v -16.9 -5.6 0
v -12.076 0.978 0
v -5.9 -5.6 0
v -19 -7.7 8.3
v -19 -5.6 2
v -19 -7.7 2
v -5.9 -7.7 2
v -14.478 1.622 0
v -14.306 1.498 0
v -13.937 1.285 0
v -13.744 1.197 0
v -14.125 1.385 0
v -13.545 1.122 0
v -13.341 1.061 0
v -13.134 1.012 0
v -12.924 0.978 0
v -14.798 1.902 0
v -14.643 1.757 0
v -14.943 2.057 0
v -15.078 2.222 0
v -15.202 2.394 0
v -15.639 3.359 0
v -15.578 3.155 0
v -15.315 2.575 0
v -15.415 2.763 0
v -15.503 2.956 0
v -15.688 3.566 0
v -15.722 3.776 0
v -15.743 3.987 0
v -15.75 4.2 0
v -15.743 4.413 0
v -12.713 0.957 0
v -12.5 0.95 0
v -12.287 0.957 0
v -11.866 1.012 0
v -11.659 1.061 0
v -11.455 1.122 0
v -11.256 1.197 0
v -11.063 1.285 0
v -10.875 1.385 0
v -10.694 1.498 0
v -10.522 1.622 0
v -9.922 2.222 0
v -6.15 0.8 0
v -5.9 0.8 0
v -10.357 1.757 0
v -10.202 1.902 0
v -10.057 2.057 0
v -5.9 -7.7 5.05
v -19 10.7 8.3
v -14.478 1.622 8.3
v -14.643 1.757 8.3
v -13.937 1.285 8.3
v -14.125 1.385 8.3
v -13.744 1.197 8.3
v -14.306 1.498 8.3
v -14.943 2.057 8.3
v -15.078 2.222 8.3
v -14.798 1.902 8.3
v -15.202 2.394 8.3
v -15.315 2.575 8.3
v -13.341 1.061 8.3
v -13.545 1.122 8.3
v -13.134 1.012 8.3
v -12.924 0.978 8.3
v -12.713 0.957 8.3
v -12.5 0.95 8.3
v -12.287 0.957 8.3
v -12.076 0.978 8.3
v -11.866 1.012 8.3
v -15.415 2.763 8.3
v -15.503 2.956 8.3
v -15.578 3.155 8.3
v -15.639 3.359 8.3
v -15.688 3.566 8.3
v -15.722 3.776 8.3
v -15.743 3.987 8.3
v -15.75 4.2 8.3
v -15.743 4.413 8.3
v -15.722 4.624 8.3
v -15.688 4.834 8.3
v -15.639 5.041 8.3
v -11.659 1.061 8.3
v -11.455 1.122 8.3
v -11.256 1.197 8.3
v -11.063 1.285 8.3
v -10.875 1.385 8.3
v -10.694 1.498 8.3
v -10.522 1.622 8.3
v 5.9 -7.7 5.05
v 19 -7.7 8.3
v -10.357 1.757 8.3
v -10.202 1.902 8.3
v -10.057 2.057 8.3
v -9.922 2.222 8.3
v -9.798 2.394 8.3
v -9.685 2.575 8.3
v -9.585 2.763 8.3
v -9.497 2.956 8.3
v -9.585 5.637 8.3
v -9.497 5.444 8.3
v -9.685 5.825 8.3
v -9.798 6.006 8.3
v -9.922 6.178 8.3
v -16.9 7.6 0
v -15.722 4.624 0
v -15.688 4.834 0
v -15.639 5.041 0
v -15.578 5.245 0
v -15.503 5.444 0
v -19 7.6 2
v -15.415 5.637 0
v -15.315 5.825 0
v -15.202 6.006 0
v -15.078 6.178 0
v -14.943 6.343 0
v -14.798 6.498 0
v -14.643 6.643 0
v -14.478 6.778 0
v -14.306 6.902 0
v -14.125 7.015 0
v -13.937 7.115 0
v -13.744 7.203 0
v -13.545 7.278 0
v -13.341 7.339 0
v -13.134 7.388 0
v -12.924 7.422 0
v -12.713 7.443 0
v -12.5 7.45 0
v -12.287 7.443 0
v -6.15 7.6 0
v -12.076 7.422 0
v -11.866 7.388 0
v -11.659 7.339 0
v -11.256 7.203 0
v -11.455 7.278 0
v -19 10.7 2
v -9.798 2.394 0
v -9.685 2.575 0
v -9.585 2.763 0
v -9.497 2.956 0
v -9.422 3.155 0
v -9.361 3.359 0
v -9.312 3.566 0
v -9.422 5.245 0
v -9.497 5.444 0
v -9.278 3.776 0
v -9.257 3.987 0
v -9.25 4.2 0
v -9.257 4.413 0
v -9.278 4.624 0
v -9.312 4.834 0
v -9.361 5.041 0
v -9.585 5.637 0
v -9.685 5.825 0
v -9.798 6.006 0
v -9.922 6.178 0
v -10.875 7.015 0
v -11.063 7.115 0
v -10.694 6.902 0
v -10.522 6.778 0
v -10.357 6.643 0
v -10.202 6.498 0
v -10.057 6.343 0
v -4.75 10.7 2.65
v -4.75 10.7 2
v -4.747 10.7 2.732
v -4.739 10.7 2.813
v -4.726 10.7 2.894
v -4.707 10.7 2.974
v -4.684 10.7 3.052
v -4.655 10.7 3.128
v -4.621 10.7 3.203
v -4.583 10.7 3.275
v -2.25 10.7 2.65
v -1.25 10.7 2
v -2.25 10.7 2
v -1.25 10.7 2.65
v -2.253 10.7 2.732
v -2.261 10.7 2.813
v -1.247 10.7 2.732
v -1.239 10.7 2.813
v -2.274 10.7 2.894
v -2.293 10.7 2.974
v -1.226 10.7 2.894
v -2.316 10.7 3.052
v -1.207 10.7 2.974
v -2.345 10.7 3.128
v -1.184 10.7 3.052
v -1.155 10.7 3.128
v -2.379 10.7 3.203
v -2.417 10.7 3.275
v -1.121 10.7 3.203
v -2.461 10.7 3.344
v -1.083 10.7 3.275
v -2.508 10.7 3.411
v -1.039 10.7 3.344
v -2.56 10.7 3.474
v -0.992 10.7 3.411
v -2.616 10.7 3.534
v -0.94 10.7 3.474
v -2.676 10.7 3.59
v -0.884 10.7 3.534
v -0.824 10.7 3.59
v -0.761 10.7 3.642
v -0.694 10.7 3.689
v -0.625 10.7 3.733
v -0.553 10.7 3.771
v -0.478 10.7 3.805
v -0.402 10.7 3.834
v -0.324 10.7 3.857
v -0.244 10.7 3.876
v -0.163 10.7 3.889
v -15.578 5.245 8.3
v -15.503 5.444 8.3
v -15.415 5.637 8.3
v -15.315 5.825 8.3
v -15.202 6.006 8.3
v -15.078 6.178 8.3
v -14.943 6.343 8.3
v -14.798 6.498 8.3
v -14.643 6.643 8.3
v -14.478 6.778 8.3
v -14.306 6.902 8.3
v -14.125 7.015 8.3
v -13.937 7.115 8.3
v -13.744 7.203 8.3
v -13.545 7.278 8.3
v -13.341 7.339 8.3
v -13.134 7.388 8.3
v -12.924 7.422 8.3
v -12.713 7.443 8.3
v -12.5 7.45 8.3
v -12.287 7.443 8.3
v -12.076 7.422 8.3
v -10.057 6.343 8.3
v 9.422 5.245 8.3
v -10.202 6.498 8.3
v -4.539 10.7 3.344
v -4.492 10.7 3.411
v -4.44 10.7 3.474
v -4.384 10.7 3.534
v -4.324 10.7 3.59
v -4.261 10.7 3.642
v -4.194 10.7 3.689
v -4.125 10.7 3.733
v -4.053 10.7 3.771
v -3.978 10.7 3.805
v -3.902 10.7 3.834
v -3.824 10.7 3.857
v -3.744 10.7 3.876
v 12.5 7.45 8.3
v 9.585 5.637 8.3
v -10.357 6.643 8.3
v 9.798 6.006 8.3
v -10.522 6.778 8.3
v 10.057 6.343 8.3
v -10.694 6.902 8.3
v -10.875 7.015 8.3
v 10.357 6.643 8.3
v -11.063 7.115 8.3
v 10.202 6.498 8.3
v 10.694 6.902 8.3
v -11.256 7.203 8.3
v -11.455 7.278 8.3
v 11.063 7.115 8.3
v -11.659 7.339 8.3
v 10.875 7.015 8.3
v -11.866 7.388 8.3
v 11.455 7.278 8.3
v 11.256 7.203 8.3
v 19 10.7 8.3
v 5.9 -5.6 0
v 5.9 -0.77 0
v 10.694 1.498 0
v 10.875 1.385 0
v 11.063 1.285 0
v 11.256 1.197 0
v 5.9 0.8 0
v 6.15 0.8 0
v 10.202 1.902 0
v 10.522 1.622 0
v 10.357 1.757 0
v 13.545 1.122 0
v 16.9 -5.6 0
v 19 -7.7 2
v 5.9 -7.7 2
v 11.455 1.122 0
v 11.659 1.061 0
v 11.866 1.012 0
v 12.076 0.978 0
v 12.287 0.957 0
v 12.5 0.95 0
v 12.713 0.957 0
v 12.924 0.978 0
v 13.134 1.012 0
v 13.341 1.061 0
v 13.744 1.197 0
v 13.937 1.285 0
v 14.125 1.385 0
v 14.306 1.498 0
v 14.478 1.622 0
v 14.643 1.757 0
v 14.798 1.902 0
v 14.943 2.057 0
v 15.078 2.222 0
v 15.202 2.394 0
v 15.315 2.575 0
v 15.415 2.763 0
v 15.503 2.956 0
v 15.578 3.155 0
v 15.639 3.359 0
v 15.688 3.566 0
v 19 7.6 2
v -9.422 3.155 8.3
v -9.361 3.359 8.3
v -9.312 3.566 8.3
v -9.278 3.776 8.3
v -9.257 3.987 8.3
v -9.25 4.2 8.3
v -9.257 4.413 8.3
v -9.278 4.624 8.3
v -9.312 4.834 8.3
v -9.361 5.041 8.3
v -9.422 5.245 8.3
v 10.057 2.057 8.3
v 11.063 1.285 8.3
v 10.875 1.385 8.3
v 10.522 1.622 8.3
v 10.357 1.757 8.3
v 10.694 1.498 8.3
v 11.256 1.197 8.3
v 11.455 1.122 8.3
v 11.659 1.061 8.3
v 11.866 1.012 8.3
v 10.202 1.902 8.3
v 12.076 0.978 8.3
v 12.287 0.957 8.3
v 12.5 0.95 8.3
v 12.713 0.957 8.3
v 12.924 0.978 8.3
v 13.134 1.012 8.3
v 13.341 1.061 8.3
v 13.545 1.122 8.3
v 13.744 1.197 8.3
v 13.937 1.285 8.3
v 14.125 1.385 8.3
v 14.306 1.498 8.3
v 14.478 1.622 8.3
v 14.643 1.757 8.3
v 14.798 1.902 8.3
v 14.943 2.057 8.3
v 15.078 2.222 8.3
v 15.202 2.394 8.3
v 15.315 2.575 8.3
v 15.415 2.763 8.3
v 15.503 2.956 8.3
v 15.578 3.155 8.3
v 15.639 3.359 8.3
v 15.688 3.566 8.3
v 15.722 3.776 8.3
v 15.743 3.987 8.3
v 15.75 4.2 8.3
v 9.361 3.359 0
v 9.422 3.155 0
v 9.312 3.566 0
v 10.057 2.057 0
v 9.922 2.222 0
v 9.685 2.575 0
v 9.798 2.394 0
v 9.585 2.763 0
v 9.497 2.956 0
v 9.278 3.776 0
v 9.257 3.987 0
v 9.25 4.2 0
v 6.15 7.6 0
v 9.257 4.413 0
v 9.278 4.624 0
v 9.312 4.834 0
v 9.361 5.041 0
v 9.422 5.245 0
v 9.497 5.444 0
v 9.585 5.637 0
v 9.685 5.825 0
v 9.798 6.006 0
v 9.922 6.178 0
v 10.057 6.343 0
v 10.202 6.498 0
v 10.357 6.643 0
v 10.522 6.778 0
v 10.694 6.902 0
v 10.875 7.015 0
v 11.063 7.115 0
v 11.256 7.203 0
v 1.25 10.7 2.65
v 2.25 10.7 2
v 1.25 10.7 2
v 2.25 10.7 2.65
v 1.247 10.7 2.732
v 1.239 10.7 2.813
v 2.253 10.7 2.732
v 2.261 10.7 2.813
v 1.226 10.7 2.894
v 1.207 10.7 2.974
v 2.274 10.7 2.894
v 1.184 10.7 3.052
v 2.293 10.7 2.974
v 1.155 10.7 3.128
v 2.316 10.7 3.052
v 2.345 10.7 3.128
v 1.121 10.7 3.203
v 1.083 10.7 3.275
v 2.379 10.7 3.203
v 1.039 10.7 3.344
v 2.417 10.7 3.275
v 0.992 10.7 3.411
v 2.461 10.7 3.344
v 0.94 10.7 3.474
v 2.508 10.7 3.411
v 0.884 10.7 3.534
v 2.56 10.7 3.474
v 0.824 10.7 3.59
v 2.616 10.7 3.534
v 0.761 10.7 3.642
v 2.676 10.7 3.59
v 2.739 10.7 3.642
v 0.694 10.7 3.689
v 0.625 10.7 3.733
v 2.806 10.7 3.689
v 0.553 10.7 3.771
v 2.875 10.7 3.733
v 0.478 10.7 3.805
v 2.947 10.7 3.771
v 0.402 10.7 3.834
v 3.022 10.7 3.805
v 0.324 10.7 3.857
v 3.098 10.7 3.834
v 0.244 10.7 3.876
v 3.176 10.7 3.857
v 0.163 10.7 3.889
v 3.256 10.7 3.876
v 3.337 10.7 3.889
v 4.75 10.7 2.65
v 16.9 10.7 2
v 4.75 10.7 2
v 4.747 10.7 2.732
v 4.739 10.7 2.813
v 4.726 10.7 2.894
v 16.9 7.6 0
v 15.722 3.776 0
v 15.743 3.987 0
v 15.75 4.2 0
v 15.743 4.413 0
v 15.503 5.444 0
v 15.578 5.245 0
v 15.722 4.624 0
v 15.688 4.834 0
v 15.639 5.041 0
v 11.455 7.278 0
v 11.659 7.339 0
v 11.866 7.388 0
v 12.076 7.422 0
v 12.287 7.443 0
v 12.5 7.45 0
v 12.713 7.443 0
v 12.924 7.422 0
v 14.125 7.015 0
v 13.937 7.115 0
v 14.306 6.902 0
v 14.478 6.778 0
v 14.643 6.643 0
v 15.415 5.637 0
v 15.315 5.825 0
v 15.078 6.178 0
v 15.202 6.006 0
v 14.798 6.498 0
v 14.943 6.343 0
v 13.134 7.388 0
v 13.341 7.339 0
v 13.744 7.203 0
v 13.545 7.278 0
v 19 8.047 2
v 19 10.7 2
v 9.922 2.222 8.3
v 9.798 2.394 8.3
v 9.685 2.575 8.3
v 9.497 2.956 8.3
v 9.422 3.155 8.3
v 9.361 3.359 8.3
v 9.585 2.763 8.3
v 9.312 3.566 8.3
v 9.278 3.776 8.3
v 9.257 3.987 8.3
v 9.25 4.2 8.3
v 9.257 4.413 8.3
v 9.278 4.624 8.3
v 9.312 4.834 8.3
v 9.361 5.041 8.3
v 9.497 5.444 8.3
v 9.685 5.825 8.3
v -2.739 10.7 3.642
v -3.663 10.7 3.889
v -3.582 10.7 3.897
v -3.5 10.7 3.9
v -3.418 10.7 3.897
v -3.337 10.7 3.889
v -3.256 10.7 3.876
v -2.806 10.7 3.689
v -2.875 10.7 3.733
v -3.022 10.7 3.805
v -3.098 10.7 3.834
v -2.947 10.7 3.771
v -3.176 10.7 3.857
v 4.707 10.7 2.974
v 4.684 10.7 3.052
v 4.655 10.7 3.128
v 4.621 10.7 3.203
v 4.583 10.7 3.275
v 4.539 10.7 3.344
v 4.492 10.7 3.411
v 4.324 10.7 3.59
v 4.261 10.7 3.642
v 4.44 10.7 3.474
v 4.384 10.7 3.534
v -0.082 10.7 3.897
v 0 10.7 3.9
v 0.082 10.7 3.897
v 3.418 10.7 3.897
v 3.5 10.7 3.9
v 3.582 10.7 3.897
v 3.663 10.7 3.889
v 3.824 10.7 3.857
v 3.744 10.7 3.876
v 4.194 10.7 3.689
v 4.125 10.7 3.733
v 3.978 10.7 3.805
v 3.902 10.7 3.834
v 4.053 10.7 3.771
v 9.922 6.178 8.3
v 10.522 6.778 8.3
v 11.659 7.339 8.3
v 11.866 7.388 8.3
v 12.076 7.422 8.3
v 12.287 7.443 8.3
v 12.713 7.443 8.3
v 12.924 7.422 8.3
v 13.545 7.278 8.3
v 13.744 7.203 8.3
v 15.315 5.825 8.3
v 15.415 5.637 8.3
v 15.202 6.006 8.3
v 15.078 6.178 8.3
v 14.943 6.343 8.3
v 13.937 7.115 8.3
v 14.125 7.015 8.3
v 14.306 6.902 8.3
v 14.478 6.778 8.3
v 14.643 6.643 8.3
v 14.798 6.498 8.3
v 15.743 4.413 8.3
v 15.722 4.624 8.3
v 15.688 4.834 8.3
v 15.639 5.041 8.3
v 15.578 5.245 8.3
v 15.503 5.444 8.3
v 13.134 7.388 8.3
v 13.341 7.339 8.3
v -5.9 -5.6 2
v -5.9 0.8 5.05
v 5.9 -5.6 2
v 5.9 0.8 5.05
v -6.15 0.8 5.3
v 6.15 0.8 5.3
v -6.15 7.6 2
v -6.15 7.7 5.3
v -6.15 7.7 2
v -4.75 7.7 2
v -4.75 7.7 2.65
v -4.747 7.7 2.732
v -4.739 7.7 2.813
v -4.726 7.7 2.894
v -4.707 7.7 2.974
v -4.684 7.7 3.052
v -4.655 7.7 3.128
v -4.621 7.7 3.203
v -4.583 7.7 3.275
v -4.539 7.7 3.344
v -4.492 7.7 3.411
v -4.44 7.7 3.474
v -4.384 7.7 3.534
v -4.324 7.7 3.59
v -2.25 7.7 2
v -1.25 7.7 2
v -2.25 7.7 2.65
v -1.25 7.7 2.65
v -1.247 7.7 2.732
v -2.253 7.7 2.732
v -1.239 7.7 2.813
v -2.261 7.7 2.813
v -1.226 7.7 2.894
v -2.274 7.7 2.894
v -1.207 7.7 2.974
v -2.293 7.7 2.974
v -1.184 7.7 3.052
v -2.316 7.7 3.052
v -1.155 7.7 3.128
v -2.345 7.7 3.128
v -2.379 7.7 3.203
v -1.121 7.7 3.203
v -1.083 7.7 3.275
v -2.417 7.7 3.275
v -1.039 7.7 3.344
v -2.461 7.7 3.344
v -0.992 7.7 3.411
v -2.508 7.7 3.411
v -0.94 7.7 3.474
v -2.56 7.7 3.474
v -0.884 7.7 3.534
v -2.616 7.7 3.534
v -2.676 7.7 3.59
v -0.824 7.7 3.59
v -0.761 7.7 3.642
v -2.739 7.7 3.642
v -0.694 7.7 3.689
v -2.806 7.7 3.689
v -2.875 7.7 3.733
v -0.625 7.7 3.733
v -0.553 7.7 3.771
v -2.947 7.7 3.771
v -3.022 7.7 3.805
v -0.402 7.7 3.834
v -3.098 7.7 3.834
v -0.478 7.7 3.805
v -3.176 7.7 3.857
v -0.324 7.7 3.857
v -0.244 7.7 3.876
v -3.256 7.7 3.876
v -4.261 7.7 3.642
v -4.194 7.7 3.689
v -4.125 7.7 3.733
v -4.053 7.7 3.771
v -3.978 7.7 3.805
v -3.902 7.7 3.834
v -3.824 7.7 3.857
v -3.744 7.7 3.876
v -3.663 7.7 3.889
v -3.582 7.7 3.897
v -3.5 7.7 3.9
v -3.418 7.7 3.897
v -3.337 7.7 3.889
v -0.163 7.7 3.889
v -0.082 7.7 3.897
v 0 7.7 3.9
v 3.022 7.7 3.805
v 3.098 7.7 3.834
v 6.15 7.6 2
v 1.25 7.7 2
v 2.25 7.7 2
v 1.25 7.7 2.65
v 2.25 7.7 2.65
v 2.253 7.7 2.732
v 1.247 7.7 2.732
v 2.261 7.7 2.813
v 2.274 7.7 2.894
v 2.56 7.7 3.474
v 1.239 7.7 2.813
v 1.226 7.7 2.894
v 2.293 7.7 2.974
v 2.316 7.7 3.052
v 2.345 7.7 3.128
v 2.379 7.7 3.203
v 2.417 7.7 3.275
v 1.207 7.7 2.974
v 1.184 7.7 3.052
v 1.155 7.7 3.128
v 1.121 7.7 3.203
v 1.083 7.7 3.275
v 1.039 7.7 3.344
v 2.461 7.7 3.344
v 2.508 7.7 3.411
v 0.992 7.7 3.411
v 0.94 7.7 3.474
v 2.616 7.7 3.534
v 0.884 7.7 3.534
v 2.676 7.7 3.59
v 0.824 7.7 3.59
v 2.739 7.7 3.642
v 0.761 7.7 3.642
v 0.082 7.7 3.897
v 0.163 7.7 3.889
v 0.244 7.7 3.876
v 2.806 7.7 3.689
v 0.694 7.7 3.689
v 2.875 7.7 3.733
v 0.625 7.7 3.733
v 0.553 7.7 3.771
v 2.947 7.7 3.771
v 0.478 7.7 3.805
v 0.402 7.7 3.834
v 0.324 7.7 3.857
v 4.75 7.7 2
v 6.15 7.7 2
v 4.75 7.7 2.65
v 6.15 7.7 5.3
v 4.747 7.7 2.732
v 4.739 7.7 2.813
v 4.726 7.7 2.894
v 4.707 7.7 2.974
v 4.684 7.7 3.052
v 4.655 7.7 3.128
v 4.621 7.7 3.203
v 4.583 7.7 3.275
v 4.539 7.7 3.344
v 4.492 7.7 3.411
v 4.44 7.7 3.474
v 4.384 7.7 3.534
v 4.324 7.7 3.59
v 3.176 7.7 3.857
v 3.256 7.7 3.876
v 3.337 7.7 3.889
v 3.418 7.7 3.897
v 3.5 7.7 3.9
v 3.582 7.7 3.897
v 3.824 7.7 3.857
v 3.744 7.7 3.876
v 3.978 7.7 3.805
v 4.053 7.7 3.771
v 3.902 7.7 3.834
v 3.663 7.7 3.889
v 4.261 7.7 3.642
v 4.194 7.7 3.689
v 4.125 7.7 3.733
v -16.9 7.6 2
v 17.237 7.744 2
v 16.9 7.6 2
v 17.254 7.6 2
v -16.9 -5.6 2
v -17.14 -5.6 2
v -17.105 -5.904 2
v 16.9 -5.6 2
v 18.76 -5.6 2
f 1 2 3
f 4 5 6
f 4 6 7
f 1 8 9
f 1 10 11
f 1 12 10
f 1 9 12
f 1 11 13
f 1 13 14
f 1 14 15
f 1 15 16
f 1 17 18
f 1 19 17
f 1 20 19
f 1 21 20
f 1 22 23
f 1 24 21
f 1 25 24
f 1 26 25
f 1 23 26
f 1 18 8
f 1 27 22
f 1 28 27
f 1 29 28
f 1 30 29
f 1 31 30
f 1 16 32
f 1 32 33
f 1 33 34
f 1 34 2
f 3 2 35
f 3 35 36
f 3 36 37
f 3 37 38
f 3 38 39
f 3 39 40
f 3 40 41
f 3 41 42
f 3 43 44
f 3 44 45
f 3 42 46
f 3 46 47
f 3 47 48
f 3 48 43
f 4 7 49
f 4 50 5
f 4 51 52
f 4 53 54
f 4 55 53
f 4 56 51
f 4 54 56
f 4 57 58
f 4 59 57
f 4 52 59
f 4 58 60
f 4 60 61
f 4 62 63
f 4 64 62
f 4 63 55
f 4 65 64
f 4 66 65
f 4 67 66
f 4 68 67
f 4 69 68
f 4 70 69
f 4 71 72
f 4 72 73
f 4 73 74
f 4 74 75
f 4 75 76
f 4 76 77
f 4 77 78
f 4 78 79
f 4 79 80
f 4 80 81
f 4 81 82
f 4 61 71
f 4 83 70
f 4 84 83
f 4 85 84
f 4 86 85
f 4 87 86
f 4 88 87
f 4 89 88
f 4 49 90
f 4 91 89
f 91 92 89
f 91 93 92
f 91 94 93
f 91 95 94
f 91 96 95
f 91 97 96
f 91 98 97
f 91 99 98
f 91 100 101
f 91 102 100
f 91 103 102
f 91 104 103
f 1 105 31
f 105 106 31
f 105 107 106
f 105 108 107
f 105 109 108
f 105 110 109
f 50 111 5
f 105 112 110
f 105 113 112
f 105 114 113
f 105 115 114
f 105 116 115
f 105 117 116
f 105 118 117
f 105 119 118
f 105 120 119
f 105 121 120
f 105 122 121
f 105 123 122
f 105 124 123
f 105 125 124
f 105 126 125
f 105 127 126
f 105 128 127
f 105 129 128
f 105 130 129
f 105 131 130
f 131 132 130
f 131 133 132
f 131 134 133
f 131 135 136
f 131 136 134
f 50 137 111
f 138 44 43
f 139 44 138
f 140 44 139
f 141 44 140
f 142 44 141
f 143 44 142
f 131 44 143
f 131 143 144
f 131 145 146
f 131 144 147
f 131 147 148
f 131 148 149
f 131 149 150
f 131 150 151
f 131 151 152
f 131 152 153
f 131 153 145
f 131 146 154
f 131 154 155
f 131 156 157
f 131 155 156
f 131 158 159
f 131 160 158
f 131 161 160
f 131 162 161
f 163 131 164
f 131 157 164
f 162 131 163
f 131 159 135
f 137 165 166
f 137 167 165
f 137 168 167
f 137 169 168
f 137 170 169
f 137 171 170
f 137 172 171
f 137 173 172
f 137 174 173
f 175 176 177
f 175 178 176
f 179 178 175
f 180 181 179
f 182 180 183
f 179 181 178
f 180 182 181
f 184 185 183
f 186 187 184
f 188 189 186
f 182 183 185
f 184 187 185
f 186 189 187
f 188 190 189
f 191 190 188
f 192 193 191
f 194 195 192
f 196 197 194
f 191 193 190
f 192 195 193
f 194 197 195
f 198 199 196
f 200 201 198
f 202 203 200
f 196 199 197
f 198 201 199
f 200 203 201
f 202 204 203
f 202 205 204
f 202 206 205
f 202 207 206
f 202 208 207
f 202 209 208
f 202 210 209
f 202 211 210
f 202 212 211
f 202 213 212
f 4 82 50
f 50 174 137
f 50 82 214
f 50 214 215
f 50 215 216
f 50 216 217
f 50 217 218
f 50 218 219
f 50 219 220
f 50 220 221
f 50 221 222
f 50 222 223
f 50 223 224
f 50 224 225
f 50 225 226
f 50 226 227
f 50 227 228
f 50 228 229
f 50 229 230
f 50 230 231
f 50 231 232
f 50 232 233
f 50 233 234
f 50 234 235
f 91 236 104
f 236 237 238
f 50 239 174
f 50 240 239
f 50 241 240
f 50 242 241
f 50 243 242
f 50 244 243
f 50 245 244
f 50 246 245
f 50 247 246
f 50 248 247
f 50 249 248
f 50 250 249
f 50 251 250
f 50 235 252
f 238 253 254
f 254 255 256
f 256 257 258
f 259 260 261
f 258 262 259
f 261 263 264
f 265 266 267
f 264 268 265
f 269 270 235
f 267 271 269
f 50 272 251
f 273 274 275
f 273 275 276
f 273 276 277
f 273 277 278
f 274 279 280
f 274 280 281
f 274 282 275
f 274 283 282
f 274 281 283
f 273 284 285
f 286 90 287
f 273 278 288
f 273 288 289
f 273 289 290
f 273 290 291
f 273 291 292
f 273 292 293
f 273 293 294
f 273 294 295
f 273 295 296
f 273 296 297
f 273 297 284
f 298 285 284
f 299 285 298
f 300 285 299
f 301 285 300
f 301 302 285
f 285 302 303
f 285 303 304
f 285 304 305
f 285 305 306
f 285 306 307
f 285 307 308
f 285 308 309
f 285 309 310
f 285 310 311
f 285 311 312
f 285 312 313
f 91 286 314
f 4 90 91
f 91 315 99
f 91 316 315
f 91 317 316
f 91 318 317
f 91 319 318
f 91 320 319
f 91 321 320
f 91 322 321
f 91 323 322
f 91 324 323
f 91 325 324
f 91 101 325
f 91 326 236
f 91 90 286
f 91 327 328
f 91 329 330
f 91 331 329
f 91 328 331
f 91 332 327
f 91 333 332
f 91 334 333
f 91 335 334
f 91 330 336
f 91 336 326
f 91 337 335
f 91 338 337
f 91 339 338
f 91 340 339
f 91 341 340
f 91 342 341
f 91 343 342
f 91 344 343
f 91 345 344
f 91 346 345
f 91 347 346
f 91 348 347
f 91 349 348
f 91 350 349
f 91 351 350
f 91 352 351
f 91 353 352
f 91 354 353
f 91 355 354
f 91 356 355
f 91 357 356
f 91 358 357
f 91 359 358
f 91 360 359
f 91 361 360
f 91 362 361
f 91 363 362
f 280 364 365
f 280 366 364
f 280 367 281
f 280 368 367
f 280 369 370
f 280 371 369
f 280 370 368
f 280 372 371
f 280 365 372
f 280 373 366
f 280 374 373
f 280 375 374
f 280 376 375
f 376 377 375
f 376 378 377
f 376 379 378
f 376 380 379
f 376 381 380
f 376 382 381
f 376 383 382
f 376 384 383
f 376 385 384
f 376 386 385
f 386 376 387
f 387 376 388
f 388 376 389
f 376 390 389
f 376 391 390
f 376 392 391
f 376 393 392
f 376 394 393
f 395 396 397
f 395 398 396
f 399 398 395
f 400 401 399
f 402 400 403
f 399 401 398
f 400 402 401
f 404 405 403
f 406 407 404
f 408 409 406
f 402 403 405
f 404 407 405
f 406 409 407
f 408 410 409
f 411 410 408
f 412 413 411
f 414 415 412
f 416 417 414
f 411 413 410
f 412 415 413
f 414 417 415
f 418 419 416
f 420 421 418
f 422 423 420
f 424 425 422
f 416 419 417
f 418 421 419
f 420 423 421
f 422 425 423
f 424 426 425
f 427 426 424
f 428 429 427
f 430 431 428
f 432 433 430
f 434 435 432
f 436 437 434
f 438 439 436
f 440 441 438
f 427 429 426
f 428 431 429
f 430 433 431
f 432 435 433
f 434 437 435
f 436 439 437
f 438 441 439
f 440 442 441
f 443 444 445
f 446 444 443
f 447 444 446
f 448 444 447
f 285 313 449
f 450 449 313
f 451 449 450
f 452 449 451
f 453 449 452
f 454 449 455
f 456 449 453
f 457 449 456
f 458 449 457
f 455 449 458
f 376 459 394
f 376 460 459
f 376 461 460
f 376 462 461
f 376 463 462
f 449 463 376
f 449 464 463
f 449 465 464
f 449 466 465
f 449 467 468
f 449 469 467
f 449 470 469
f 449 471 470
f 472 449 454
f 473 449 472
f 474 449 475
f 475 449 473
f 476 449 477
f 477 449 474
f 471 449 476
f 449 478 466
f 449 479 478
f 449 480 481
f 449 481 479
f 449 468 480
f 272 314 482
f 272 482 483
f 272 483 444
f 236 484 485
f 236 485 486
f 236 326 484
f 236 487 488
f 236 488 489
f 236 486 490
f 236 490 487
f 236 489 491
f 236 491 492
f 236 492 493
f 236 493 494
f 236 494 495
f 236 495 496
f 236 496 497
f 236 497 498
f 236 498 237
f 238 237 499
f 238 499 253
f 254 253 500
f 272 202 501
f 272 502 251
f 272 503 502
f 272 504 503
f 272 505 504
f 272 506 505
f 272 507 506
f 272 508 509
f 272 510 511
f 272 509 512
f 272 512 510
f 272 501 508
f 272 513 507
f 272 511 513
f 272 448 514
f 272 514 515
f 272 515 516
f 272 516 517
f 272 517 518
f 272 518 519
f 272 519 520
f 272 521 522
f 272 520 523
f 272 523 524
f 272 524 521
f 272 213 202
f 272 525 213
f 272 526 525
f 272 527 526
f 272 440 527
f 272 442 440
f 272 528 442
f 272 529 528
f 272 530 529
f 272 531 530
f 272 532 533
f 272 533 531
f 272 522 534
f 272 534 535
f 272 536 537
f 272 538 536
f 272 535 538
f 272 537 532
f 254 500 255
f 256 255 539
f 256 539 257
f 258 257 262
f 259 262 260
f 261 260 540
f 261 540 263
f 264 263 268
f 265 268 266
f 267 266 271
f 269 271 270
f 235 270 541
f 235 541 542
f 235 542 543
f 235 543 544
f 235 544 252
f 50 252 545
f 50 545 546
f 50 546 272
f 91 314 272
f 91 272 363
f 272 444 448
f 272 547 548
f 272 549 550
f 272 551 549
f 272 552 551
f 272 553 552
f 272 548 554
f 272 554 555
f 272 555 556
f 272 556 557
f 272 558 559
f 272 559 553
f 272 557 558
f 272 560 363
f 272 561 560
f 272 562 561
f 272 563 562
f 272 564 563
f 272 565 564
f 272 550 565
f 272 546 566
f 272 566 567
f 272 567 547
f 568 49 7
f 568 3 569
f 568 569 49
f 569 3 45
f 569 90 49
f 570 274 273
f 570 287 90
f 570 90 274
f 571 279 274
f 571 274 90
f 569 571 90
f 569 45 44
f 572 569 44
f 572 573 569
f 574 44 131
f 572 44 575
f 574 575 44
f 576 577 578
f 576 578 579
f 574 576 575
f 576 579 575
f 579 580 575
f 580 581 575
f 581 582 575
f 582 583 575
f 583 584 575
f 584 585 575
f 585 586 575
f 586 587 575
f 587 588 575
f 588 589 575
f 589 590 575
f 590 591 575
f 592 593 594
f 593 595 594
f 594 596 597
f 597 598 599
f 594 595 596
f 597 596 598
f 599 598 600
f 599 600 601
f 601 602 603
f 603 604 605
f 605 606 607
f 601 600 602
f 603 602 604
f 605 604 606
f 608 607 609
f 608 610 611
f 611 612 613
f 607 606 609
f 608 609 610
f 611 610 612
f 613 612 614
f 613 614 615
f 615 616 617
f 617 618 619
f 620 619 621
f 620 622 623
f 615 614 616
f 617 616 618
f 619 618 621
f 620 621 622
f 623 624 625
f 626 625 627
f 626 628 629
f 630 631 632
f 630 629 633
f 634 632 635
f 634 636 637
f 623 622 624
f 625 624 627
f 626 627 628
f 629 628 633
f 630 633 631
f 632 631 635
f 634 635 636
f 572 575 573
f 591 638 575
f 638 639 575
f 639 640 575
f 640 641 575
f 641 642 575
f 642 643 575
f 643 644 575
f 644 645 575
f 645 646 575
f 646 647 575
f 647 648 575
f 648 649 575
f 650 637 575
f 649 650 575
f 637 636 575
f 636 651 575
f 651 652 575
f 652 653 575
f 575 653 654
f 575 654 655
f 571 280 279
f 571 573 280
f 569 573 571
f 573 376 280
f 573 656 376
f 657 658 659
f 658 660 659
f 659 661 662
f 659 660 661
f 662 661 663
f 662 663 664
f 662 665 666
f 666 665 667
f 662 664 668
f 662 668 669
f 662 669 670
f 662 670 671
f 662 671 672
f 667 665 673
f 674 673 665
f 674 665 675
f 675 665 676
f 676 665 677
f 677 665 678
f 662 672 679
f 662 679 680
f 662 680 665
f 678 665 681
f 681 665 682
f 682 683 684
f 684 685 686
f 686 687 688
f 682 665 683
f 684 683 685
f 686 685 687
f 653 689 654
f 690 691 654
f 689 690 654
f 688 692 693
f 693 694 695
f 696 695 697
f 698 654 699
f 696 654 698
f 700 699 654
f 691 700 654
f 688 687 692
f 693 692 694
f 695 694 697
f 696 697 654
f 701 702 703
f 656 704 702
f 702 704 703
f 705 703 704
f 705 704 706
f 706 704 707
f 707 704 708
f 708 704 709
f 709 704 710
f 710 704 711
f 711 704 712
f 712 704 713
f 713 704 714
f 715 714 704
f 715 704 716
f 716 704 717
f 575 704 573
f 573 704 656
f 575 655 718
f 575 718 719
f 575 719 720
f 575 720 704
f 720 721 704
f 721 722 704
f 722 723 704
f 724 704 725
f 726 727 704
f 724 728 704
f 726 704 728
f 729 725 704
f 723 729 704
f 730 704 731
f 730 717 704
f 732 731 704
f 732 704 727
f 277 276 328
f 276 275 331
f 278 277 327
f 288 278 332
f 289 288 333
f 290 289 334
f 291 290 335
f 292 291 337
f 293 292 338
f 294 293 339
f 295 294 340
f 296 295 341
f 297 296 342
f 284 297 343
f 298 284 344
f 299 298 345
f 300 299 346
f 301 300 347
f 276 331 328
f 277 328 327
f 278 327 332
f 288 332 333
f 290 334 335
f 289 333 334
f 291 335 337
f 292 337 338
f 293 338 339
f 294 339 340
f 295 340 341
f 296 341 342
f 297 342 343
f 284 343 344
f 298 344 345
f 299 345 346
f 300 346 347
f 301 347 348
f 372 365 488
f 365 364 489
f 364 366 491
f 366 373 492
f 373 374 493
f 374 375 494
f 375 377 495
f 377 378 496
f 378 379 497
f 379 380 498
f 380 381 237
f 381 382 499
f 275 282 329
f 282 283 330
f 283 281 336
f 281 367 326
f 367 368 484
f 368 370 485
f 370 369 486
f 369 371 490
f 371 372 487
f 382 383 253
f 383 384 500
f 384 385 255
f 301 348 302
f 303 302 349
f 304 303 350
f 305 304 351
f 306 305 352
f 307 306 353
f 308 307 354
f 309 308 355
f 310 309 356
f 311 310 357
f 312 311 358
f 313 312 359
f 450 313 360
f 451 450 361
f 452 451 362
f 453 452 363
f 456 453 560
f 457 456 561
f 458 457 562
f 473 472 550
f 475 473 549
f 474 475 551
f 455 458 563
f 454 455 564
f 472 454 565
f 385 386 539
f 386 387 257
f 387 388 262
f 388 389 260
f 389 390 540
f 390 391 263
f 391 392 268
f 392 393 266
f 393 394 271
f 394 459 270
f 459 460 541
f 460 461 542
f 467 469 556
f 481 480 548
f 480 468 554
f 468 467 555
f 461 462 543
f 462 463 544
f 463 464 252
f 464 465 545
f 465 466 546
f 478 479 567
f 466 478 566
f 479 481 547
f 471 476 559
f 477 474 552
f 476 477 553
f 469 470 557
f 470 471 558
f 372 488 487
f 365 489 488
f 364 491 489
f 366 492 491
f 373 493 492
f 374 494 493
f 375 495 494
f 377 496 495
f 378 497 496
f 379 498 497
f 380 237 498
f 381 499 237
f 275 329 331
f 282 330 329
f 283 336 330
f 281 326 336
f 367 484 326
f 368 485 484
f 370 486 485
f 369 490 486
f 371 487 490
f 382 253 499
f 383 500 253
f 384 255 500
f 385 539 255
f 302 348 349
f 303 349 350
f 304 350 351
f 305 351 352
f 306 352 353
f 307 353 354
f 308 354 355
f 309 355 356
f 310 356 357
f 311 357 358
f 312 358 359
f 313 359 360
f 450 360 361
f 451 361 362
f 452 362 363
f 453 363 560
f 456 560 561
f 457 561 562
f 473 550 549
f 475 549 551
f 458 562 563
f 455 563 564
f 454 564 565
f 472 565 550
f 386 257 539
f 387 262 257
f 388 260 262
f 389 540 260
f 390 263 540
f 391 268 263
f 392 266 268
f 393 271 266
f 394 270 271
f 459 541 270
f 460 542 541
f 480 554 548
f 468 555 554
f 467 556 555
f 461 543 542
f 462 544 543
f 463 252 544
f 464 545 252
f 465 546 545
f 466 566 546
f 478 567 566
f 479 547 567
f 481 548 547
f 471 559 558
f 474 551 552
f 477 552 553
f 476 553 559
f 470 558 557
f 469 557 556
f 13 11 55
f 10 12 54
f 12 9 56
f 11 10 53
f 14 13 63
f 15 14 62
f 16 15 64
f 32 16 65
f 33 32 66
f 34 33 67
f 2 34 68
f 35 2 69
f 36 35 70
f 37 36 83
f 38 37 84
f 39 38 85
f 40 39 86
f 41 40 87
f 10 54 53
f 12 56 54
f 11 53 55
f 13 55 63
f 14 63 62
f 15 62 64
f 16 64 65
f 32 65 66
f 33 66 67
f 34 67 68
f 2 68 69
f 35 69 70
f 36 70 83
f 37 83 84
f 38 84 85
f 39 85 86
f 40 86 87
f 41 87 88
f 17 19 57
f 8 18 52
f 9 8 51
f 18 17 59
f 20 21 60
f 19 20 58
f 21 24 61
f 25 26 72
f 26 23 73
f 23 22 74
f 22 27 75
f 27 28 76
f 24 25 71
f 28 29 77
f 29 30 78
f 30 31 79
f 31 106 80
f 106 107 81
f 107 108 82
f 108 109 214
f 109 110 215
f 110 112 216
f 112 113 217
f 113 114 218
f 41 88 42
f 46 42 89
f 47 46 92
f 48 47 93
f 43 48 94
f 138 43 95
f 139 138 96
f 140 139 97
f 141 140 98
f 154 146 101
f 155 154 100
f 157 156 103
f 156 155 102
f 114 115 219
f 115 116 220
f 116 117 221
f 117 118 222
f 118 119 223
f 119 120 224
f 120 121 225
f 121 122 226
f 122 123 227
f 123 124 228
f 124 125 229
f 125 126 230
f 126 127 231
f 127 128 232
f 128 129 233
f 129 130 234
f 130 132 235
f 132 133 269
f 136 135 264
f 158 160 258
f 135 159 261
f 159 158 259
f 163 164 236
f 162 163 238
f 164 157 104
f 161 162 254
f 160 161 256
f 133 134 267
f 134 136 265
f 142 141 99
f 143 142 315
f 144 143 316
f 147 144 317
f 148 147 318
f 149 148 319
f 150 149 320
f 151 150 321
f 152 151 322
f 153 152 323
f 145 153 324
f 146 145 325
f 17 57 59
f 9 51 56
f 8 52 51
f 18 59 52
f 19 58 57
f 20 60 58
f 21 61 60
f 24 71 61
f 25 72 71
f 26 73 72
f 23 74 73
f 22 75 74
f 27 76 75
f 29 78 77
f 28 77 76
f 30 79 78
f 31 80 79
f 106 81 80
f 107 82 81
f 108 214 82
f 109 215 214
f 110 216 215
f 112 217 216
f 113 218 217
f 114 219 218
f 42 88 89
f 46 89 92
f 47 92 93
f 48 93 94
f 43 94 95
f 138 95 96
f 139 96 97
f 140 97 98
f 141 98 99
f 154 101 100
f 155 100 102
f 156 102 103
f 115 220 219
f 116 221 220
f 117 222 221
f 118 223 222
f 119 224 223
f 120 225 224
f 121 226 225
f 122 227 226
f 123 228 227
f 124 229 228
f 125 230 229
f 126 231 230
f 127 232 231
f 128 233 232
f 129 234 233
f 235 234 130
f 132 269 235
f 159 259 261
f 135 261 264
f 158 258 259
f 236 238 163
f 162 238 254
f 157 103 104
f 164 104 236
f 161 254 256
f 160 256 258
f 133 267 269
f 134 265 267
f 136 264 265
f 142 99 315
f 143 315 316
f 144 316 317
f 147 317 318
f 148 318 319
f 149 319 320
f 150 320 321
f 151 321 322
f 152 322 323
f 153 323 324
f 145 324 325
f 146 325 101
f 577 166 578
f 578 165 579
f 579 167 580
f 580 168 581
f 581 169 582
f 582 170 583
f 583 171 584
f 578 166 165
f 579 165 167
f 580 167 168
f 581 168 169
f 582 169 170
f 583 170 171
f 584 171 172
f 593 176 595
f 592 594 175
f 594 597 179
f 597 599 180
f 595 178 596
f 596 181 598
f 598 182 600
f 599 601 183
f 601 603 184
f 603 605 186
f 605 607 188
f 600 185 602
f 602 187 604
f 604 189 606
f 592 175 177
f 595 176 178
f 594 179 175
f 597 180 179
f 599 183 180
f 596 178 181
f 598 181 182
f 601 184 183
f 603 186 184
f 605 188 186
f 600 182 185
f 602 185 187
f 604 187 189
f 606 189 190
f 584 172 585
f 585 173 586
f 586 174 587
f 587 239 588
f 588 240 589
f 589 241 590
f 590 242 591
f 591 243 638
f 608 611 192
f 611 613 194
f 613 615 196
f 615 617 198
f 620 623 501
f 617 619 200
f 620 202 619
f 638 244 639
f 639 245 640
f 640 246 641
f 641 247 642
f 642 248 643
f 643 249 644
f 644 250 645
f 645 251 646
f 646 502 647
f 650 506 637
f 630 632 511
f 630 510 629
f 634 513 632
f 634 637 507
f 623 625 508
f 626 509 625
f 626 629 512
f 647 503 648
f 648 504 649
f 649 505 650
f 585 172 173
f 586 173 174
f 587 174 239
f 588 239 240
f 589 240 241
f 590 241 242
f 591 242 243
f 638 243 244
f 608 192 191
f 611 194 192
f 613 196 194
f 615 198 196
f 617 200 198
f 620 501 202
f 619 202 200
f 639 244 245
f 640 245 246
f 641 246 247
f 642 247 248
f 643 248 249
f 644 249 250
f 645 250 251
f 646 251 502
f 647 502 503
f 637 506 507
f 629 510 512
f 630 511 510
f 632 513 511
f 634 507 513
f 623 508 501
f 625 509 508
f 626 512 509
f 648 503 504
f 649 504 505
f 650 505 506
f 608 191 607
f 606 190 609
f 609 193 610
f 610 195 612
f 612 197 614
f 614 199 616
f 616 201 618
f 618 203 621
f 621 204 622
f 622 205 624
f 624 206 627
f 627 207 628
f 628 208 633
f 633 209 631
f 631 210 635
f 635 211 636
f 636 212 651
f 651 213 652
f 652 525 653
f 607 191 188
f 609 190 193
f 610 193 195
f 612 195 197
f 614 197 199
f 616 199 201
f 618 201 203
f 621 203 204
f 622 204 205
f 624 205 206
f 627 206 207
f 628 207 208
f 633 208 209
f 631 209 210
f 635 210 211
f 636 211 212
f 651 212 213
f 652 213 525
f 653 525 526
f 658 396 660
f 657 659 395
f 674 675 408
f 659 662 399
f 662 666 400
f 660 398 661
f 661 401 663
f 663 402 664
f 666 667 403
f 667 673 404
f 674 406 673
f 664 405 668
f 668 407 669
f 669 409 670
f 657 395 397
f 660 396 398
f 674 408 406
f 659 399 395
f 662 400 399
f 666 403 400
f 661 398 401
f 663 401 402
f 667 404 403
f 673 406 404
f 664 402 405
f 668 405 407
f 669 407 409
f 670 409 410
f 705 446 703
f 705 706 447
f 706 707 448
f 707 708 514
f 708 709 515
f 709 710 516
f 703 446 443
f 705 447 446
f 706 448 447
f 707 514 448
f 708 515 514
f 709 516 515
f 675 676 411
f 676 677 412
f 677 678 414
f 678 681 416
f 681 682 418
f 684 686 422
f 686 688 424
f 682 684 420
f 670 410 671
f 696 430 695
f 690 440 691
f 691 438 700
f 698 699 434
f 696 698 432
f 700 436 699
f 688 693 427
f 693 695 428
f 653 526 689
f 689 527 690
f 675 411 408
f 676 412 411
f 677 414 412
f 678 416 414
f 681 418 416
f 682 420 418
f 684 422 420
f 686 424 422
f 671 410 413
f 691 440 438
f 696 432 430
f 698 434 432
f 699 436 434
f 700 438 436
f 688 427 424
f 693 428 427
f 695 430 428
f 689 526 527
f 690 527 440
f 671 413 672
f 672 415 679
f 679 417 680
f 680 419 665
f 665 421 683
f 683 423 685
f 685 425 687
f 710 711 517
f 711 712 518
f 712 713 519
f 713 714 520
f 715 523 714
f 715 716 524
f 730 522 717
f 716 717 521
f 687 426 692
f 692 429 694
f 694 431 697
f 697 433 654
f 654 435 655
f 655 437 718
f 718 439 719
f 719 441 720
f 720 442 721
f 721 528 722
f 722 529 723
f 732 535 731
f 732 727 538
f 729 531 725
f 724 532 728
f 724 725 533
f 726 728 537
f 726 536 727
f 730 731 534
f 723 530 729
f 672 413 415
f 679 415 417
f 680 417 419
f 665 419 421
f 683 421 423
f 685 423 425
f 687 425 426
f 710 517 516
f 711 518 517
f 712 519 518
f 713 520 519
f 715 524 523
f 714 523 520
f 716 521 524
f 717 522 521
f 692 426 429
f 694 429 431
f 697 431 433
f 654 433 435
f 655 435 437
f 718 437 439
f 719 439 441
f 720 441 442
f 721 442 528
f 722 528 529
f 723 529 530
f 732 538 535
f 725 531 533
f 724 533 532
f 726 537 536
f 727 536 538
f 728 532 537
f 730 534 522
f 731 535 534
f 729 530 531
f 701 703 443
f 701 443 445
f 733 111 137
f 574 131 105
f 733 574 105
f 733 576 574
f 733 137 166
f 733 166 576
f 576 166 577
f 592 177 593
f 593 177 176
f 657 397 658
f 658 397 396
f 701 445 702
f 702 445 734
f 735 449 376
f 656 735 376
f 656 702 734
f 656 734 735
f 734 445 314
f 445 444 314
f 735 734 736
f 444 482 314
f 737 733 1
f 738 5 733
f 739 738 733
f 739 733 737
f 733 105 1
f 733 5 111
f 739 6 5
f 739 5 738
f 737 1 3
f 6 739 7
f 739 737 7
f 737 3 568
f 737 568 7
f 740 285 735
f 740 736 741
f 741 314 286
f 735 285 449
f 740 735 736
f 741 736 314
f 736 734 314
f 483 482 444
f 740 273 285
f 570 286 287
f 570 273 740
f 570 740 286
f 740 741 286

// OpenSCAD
// MR30 电源/电机接头压块 mr30_clamp_12p3x5p3x15p4 (v2 阶梯槽 + 底板垫片嵌套) — 平顶块, 2×M6 @ 25 横跨接头, 大扁头坐顶面
// 接头 (用户 09-16): 总长 15.4 (含护套); 前 8.5 = 插合本体 11.8×4.8 (单边小 0.25, 同轴, 底面离板 0.25); 后 6.9 = 护套 12.3×5.3
// 阶梯槽 间隙 0 / 过盈 0 / 台阶对齐: 本体段 11.8×5.05 长 8.5 + 护套段 12.3×5.3 长 6.9
// 出线: 3×U 口 Φ2.5 (= 线径零余量), 圆心 = 护套厚/2 = 2.65, 直边; 下半由件 2 后边框缺口平底 (1.4) 补成内切 Φ2.5 的孔
// 件 2 垫片 (mr30_shim_38x18p4x2p25.stl): 底板 38×18.4×2 + 凸台 11.6×8.5×0.25 + 2×Φ6.5 同轴
//   + 止口四边 高 2: 左右 / 开口端 宽 2 (开口端槽口处断开), 后边 宽 3 全宽; 出线处缺口 宽 2.5 削到 1.4
// 压块底面同位置切台阶 (左右/开口端 2.1 宽, 后边 3.1 宽, 高 2): 竖直面留 0.1 装配间隙, 高度贴合 => 组合外形 38×18.4×10.3 平齐长方体
// ⚠ 后台阶前沿 (距开口面 15.3) 到 M6 孔后缘 (15.15) 只剩 0.15 —— 孔心到开口面 11.9 待用户定
// 装配: 底板放板上 -> 接头放上, 线落进缺口 -> 压块扣下 -> M6×20 穿两件

sheath_w = 12.3; sheath_h = 5.3;
body_step = 0.25;
body_w = sheath_w - 2*body_step;    // 11.8
body_h = sheath_h - 2*body_step;    // 4.8
mr_l   = 15.4;
body_l = 8.5;
body_lift = (sheath_h - body_h)/2;  // 0.25
side_clr = 0; preload = 0; step_margin = 0;   // 接头配合: 间隙 / 过盈 0
t_top  = 3;
cap_t  = 3;
wire_d = 2.5;                       // U 口径 = 线径 (零余量)
wire_pitch = 3.5; n_wire = 3;
wire_zc = sheath_h/2;               // 2.65
ledge_h = wire_zc - wire_d/2;       // 1.4 出线圆最低点 = 后边框缺口底
pitch  = 25; hole_d = 6.5; end_m = 6.5;
hole_y_open = 11.9;                 // 待定

base_t     = 2;      // 垫片底板厚
rim_w      = 2;      // 止口宽 (左右 / 开口端)
rear_rim_w = cap_t;  // 止口宽 (后边) = 堵头厚 3
rim_h      = 2;      // 止口高
assy_clr   = 0.1;    // 嵌套竖直面装配间隙 (高度不留)
boss_w     = body_w + 2*side_clr - 2*assy_clr;   // 11.6

ch_w_b = body_w + 2*side_clr;             // 11.8
ch_h_b = body_lift + body_h - preload;    // 5.05
ch_w_s = sheath_w + 2*side_clr;           // 12.3
ch_h_s = sheath_h - preload;              // 5.3
htop   = ch_h_s + t_top;                  // 8.3
hx     = pitch/2;
half_l = hx + end_m;                      // 19
y_open = -mr_l/2;                         // -7.7
y_step = y_open + body_l - step_margin;   // 0.8
y_capi = mr_l/2;                          // 7.7
y_end  = y_capi + cap_t;                  // 10.7
depth  = mr_l + cap_t;                    // 18.4

module u_slot(xc) {
    translate([xc, y_capi - 1, wire_zc]) rotate([-90, 0, 0])
        cylinder(h = cap_t + 2, d = wire_d, $fn = 96);
    translate([xc - wire_d/2, y_capi - 1, -1]) cube([wire_d, cap_t + 2, wire_zc + 1]);
}

// 止口区域: 宽度加 gw, 顶面 rim_h + gh, 底面 z0 —— 左右全长 + 开口端两段 (|X| >= 本体段槽半宽) + 后边全宽
module rim_region(gw, gh, z0) {
    h = rim_h + gh - z0;
    translate([-half_l, y_end - (rear_rim_w + gw), z0]) cube([2*half_l, rear_rim_w + gw, h]);
    for (sx = [-1, 1]) {
        translate([sx > 0 ? half_l - (rim_w + gw) : -half_l, y_open, z0]) cube([rim_w + gw, depth, h]);
        translate([sx > 0 ? ch_w_b/2 : -half_l, y_open, z0]) cube([half_l - ch_w_b/2, rim_w + gw, h]);
    }
}

module mr30_clamp_12p3x5p3x15p4() {
    difference() {
        translate([-half_l, y_open, 0]) cube([2*half_l, depth, htop]);
        translate([-ch_w_b/2, y_open - 1, -1]) cube([ch_w_b, (y_step - y_open) + 1, ch_h_b + 1]);
        translate([-ch_w_s/2, y_step, -1]) cube([ch_w_s, y_capi - y_step, ch_h_s + 1]);
        for (sx = [-1, 1])
            translate([sx*hx, y_open + hole_y_open, -1]) cylinder(h = htop + 2, d = hole_d, $fn = 96);
        for (i = [0 : n_wire - 1]) u_slot((i - (n_wire - 1)/2) * wire_pitch);
        rim_region(assy_clr, 0, -1);      // 底面台阶: 竖直面让 0.1, 高度贴合
    }
}

// 件 2 (装配坐标, 底板 z -base_t..0; 导出 STL 整体上移 base_t)
module mr30_shim_38x18p4x2p25() {
    difference() {
        union() {
            translate([-half_l, y_open, -base_t]) cube([2*half_l, depth, base_t]);
            translate([-boss_w/2, y_open, 0]) cube([boss_w, body_l, body_lift]);
            difference() {
                rim_region(0, 0, 0);
                if (ledge_h < rim_h)      // 只有线底低于边框顶才削 (XT60 线底 3.35 不削)
                    for (i = [0 : n_wire - 1])
                        translate([(i - (n_wire - 1)/2) * wire_pitch - wire_d/2, y_capi - 1, ledge_h]) cube([wire_d, cap_t + 2, rim_h + 1]);
            }
        }
        for (sx = [-1, 1])
            translate([sx*hx, y_open + hole_y_open, -base_t - 1]) cylinder(h = base_t + 2, d = hole_d, $fn = 96);
    }
}

mr30_clamp_12p3x5p3x15p4();
// %mr30_shim_38x18p4x2p25();
